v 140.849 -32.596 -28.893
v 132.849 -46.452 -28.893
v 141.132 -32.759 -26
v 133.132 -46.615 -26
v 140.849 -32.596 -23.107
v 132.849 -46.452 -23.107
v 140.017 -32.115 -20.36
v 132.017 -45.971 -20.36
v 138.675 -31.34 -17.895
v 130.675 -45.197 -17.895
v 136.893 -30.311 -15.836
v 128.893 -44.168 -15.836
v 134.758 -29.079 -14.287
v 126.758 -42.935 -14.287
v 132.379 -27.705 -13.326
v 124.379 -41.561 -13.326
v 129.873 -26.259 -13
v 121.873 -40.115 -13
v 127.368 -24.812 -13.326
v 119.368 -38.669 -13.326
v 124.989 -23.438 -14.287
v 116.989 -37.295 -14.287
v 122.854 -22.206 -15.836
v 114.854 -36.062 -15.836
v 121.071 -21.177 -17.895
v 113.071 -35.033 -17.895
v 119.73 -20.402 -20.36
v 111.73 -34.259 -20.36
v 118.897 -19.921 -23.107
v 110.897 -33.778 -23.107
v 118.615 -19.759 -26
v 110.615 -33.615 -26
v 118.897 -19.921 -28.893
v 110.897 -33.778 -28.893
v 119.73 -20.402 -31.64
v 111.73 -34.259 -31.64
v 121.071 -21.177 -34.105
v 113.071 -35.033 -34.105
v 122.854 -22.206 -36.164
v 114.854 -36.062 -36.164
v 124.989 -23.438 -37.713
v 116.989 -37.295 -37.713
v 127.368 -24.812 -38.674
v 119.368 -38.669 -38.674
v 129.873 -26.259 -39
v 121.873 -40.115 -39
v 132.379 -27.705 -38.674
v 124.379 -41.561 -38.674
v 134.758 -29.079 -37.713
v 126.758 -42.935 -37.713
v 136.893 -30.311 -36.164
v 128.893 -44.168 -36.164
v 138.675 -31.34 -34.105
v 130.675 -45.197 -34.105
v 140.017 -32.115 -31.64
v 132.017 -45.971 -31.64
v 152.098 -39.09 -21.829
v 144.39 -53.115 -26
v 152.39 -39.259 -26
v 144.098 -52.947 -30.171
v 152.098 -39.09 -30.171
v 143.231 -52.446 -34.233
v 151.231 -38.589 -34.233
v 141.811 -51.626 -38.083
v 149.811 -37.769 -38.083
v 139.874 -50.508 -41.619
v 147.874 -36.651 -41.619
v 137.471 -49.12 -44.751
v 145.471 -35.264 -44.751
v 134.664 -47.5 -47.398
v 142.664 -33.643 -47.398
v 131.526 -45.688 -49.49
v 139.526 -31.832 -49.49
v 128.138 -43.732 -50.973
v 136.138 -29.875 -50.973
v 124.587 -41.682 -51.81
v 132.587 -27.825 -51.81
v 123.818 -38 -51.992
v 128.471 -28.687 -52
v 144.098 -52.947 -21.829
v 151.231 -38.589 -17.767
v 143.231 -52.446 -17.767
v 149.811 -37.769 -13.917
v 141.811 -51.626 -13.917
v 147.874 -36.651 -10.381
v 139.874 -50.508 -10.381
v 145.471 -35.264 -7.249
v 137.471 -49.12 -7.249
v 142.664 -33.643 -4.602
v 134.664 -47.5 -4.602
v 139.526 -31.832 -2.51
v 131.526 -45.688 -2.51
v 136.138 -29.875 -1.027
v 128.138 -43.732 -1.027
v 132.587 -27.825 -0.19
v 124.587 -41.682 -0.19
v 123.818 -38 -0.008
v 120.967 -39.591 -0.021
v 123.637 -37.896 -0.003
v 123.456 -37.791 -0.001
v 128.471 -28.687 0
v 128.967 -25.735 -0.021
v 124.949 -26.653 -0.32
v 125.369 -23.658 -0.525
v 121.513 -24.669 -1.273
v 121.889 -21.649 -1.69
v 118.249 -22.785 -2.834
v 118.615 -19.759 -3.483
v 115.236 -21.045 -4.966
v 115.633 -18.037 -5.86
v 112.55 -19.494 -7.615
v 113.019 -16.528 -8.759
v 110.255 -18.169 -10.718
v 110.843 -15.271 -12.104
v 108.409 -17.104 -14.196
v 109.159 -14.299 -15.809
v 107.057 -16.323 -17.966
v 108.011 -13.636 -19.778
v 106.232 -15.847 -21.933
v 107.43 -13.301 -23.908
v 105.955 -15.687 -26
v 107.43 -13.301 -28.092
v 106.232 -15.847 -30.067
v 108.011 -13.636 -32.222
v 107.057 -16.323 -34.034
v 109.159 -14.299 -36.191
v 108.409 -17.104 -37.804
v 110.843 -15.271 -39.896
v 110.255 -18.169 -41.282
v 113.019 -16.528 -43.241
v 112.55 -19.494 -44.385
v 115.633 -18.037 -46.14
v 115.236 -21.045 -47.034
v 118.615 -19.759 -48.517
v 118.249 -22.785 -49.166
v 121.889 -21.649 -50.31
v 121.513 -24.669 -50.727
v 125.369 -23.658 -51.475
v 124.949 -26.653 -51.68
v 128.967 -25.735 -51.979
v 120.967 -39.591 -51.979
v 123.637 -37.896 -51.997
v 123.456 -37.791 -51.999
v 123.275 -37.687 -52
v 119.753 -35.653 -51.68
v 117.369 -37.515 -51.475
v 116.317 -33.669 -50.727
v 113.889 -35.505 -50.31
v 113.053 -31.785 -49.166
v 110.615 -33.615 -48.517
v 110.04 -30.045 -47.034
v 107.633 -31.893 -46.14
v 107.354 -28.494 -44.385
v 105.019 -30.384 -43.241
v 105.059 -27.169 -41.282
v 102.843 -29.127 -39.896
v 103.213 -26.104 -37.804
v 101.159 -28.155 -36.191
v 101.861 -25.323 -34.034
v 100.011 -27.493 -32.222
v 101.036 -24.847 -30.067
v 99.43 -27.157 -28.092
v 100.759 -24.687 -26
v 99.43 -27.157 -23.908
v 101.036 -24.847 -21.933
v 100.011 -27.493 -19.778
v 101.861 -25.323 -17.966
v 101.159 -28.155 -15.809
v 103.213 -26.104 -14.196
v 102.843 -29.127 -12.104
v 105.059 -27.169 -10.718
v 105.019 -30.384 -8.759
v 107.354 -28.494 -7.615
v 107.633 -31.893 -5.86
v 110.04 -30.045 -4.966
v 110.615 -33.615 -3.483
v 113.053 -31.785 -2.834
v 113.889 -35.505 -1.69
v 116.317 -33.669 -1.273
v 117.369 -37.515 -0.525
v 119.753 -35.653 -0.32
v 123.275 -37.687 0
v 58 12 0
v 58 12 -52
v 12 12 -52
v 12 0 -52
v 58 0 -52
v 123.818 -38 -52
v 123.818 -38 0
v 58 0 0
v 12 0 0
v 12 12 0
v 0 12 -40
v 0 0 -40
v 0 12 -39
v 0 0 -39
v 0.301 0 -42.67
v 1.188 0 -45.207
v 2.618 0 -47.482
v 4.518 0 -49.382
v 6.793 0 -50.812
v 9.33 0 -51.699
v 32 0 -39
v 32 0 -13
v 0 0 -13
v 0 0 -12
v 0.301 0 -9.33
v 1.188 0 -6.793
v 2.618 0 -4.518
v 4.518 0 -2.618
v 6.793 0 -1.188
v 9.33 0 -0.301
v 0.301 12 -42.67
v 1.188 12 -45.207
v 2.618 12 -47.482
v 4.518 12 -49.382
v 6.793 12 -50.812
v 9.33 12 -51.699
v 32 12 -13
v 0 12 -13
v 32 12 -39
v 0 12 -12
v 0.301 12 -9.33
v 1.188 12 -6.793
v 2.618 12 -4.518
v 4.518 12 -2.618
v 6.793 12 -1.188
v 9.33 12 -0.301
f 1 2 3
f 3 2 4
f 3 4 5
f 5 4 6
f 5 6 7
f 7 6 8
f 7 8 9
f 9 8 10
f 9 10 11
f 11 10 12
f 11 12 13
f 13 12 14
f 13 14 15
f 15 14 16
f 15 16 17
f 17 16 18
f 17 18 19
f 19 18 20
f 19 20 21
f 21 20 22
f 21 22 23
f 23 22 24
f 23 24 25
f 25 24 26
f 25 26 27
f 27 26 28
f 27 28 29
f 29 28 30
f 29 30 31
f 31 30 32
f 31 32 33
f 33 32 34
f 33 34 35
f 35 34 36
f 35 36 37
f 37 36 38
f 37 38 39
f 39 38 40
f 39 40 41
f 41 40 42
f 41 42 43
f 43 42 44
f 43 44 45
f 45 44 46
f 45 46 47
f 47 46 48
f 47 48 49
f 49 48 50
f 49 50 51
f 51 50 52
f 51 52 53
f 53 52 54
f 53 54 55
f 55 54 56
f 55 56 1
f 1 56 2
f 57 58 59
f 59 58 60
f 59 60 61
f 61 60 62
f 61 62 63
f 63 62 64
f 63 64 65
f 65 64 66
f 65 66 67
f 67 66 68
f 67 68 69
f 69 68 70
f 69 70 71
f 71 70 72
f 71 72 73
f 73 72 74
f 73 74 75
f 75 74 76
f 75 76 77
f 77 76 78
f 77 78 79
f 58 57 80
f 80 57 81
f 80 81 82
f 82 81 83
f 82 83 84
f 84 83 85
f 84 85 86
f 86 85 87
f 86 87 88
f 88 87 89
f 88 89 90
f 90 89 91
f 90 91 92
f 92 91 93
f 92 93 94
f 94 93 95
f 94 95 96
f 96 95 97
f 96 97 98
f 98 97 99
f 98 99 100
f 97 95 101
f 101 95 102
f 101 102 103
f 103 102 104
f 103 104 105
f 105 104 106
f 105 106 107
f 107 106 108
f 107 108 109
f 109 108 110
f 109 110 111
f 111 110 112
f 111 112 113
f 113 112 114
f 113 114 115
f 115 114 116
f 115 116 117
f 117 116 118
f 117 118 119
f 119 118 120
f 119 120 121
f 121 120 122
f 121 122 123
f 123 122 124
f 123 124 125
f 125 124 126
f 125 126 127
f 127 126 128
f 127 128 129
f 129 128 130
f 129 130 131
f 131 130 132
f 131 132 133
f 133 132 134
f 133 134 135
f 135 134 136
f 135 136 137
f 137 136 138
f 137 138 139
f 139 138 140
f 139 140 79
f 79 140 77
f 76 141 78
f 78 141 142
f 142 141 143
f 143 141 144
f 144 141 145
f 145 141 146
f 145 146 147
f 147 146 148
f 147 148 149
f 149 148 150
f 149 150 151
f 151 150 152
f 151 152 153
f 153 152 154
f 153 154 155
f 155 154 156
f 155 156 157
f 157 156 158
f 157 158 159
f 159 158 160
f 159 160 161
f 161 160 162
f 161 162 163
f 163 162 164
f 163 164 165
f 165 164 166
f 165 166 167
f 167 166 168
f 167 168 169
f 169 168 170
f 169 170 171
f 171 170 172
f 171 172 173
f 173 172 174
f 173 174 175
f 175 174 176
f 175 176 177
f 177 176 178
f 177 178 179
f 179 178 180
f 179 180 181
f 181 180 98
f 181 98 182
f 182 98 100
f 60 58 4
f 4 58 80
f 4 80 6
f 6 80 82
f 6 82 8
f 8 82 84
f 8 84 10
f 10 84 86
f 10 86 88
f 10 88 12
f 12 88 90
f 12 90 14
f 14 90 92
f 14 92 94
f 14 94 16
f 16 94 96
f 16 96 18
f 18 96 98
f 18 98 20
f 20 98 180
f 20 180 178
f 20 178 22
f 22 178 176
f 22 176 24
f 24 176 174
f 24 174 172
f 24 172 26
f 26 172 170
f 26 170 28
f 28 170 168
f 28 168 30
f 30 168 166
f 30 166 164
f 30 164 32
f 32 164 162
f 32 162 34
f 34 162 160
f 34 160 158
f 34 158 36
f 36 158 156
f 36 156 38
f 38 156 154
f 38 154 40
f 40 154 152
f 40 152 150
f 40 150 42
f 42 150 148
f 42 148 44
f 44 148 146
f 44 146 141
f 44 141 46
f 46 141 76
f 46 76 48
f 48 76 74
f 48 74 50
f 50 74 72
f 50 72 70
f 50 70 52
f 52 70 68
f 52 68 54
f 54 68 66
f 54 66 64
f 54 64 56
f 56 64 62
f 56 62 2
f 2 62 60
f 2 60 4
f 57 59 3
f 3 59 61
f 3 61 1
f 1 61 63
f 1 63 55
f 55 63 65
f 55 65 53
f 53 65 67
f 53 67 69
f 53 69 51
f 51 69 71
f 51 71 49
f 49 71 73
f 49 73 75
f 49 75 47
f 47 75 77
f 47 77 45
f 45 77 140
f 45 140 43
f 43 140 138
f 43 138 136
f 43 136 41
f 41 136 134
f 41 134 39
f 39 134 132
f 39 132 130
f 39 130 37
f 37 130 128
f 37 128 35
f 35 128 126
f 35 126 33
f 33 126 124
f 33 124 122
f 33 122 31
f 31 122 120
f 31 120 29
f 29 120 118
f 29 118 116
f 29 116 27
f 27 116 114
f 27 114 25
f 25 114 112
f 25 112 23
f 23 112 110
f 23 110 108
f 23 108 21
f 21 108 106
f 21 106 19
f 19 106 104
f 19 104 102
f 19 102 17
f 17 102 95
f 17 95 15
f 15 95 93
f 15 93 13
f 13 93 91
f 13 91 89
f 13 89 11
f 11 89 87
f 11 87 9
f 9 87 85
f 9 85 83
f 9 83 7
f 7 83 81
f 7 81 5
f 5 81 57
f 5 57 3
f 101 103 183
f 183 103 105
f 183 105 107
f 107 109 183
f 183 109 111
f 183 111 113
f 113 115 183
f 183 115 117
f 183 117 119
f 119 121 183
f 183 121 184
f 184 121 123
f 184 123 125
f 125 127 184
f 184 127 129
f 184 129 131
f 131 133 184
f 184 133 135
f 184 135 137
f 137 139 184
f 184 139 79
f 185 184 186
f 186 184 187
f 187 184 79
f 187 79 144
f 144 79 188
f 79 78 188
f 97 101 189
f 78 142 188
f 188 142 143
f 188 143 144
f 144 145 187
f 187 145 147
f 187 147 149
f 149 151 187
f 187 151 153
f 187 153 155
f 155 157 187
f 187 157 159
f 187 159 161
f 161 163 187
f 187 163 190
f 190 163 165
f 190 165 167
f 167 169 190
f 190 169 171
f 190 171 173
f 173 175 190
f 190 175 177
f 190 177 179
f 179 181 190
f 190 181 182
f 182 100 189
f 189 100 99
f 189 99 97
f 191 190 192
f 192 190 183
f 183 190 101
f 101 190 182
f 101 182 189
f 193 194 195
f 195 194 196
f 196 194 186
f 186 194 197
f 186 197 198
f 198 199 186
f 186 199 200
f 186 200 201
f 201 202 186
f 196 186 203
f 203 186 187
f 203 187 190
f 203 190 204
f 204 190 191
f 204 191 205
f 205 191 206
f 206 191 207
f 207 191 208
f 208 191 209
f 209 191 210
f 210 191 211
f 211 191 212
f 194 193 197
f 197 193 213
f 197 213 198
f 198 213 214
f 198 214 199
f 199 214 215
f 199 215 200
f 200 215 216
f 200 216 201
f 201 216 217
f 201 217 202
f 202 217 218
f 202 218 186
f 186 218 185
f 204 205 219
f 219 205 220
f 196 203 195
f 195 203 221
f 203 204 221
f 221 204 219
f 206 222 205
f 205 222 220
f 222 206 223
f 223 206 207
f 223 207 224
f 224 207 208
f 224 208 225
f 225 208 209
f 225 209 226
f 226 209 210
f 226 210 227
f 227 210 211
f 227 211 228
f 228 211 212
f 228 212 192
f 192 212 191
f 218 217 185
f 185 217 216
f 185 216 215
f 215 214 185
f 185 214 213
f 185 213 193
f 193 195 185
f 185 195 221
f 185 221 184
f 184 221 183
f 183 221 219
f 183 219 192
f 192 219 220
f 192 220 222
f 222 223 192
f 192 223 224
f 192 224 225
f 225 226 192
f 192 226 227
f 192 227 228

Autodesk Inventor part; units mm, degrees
ref_plane "YZ Plane" through (0, 0, 0) normal (1, 0, 0) x (0, 1, 0)
ref_plane "XZ Plane" through (0, 0, 0) normal (0, 1, 0) x (-1, 0, 0)
sketch "Sketch1" plane through (0, 0, 0) normal (0, 0, 1) x (1, 0, 0)
  line L0 (0, 0) -> (58, 0)
  line L1 (58, 0) -> (58, 12)
  line L2 (58, 12) -> (0, 12)
  line L3 (0, 12) -> (0, 0)
  line L4 (58, 12) -> (36.0591, 24.6676) construction
  line L5 (58, 12) -> (129.0141, -29)
  line L6 (58, 12) -> (140, 12) construction
  line L7 (58, 0) -> (123.8179, -38)
  line L8 (58, 0) -> (134, 0) construction
  line L9 (123.8179, -38) -> (128.4714, -28.6867)
  dimension "d0" = 58
  dimension "d1" = 12
  dimension "d2" = 30
  dimension "d3" = 82
  dimension "d4" = 30
  dimension "d5" = 30
  dimension "d6" = 93.45
  dimension "d7" = 127.746
  dimension "d8" = 106.5151
extrude "Extrusion1" add sketch "Sketch1" against normal blind 52
ref_plane "Work Plane1" through (125.8734, -33.1867, 0) normal (0.5, 0.866, 0) x (0.866, -0.5, 0)
sketch "Sketch3" plane through (125.8734, -33.1867, 0) normal (0.5, 0.866, 0) x (0.866, -0.5, 0)
  line L0 (0, 0) -> (0, 52) construction
  circle A0 centre (0, 26) radius 26
  circle A1 centre (0, 26) radius 13
  point P0 (-125.6029, 0)
  dimension "d12" = 26
extrude "Extrusion2" add sketch "Sketch3" along normal mid plane 16
extrude "Extrusion3" cut sketch "Sketch3" along normal through all both and the other way through all contours A1
sketch "Sketch4" plane through (0, 12, 0) normal (0, 1, 0) x (1, 0, 0)
  line L0 (0, 0) -> (0, 52) projected
  line L1 (0, 26) -> (0, 39)
  line L2 (0, 39) -> (32, 39)
  line L3 (32, 39) -> (32, 13)
  line L4 (32, 13) -> (0, 13)
  line L5 (0, 13) -> (0, 39)
  dimension "d17" = 13
  dimension "d18" = 32
  dimension "d19" = 26
extrude "Extrusion4" cut sketch "Sketch4" against normal through all
fillet "Fillet1" radius 12 2 edges at (0, 6, 0) (0, 6, -52)
properties part number "LE-1.4"
